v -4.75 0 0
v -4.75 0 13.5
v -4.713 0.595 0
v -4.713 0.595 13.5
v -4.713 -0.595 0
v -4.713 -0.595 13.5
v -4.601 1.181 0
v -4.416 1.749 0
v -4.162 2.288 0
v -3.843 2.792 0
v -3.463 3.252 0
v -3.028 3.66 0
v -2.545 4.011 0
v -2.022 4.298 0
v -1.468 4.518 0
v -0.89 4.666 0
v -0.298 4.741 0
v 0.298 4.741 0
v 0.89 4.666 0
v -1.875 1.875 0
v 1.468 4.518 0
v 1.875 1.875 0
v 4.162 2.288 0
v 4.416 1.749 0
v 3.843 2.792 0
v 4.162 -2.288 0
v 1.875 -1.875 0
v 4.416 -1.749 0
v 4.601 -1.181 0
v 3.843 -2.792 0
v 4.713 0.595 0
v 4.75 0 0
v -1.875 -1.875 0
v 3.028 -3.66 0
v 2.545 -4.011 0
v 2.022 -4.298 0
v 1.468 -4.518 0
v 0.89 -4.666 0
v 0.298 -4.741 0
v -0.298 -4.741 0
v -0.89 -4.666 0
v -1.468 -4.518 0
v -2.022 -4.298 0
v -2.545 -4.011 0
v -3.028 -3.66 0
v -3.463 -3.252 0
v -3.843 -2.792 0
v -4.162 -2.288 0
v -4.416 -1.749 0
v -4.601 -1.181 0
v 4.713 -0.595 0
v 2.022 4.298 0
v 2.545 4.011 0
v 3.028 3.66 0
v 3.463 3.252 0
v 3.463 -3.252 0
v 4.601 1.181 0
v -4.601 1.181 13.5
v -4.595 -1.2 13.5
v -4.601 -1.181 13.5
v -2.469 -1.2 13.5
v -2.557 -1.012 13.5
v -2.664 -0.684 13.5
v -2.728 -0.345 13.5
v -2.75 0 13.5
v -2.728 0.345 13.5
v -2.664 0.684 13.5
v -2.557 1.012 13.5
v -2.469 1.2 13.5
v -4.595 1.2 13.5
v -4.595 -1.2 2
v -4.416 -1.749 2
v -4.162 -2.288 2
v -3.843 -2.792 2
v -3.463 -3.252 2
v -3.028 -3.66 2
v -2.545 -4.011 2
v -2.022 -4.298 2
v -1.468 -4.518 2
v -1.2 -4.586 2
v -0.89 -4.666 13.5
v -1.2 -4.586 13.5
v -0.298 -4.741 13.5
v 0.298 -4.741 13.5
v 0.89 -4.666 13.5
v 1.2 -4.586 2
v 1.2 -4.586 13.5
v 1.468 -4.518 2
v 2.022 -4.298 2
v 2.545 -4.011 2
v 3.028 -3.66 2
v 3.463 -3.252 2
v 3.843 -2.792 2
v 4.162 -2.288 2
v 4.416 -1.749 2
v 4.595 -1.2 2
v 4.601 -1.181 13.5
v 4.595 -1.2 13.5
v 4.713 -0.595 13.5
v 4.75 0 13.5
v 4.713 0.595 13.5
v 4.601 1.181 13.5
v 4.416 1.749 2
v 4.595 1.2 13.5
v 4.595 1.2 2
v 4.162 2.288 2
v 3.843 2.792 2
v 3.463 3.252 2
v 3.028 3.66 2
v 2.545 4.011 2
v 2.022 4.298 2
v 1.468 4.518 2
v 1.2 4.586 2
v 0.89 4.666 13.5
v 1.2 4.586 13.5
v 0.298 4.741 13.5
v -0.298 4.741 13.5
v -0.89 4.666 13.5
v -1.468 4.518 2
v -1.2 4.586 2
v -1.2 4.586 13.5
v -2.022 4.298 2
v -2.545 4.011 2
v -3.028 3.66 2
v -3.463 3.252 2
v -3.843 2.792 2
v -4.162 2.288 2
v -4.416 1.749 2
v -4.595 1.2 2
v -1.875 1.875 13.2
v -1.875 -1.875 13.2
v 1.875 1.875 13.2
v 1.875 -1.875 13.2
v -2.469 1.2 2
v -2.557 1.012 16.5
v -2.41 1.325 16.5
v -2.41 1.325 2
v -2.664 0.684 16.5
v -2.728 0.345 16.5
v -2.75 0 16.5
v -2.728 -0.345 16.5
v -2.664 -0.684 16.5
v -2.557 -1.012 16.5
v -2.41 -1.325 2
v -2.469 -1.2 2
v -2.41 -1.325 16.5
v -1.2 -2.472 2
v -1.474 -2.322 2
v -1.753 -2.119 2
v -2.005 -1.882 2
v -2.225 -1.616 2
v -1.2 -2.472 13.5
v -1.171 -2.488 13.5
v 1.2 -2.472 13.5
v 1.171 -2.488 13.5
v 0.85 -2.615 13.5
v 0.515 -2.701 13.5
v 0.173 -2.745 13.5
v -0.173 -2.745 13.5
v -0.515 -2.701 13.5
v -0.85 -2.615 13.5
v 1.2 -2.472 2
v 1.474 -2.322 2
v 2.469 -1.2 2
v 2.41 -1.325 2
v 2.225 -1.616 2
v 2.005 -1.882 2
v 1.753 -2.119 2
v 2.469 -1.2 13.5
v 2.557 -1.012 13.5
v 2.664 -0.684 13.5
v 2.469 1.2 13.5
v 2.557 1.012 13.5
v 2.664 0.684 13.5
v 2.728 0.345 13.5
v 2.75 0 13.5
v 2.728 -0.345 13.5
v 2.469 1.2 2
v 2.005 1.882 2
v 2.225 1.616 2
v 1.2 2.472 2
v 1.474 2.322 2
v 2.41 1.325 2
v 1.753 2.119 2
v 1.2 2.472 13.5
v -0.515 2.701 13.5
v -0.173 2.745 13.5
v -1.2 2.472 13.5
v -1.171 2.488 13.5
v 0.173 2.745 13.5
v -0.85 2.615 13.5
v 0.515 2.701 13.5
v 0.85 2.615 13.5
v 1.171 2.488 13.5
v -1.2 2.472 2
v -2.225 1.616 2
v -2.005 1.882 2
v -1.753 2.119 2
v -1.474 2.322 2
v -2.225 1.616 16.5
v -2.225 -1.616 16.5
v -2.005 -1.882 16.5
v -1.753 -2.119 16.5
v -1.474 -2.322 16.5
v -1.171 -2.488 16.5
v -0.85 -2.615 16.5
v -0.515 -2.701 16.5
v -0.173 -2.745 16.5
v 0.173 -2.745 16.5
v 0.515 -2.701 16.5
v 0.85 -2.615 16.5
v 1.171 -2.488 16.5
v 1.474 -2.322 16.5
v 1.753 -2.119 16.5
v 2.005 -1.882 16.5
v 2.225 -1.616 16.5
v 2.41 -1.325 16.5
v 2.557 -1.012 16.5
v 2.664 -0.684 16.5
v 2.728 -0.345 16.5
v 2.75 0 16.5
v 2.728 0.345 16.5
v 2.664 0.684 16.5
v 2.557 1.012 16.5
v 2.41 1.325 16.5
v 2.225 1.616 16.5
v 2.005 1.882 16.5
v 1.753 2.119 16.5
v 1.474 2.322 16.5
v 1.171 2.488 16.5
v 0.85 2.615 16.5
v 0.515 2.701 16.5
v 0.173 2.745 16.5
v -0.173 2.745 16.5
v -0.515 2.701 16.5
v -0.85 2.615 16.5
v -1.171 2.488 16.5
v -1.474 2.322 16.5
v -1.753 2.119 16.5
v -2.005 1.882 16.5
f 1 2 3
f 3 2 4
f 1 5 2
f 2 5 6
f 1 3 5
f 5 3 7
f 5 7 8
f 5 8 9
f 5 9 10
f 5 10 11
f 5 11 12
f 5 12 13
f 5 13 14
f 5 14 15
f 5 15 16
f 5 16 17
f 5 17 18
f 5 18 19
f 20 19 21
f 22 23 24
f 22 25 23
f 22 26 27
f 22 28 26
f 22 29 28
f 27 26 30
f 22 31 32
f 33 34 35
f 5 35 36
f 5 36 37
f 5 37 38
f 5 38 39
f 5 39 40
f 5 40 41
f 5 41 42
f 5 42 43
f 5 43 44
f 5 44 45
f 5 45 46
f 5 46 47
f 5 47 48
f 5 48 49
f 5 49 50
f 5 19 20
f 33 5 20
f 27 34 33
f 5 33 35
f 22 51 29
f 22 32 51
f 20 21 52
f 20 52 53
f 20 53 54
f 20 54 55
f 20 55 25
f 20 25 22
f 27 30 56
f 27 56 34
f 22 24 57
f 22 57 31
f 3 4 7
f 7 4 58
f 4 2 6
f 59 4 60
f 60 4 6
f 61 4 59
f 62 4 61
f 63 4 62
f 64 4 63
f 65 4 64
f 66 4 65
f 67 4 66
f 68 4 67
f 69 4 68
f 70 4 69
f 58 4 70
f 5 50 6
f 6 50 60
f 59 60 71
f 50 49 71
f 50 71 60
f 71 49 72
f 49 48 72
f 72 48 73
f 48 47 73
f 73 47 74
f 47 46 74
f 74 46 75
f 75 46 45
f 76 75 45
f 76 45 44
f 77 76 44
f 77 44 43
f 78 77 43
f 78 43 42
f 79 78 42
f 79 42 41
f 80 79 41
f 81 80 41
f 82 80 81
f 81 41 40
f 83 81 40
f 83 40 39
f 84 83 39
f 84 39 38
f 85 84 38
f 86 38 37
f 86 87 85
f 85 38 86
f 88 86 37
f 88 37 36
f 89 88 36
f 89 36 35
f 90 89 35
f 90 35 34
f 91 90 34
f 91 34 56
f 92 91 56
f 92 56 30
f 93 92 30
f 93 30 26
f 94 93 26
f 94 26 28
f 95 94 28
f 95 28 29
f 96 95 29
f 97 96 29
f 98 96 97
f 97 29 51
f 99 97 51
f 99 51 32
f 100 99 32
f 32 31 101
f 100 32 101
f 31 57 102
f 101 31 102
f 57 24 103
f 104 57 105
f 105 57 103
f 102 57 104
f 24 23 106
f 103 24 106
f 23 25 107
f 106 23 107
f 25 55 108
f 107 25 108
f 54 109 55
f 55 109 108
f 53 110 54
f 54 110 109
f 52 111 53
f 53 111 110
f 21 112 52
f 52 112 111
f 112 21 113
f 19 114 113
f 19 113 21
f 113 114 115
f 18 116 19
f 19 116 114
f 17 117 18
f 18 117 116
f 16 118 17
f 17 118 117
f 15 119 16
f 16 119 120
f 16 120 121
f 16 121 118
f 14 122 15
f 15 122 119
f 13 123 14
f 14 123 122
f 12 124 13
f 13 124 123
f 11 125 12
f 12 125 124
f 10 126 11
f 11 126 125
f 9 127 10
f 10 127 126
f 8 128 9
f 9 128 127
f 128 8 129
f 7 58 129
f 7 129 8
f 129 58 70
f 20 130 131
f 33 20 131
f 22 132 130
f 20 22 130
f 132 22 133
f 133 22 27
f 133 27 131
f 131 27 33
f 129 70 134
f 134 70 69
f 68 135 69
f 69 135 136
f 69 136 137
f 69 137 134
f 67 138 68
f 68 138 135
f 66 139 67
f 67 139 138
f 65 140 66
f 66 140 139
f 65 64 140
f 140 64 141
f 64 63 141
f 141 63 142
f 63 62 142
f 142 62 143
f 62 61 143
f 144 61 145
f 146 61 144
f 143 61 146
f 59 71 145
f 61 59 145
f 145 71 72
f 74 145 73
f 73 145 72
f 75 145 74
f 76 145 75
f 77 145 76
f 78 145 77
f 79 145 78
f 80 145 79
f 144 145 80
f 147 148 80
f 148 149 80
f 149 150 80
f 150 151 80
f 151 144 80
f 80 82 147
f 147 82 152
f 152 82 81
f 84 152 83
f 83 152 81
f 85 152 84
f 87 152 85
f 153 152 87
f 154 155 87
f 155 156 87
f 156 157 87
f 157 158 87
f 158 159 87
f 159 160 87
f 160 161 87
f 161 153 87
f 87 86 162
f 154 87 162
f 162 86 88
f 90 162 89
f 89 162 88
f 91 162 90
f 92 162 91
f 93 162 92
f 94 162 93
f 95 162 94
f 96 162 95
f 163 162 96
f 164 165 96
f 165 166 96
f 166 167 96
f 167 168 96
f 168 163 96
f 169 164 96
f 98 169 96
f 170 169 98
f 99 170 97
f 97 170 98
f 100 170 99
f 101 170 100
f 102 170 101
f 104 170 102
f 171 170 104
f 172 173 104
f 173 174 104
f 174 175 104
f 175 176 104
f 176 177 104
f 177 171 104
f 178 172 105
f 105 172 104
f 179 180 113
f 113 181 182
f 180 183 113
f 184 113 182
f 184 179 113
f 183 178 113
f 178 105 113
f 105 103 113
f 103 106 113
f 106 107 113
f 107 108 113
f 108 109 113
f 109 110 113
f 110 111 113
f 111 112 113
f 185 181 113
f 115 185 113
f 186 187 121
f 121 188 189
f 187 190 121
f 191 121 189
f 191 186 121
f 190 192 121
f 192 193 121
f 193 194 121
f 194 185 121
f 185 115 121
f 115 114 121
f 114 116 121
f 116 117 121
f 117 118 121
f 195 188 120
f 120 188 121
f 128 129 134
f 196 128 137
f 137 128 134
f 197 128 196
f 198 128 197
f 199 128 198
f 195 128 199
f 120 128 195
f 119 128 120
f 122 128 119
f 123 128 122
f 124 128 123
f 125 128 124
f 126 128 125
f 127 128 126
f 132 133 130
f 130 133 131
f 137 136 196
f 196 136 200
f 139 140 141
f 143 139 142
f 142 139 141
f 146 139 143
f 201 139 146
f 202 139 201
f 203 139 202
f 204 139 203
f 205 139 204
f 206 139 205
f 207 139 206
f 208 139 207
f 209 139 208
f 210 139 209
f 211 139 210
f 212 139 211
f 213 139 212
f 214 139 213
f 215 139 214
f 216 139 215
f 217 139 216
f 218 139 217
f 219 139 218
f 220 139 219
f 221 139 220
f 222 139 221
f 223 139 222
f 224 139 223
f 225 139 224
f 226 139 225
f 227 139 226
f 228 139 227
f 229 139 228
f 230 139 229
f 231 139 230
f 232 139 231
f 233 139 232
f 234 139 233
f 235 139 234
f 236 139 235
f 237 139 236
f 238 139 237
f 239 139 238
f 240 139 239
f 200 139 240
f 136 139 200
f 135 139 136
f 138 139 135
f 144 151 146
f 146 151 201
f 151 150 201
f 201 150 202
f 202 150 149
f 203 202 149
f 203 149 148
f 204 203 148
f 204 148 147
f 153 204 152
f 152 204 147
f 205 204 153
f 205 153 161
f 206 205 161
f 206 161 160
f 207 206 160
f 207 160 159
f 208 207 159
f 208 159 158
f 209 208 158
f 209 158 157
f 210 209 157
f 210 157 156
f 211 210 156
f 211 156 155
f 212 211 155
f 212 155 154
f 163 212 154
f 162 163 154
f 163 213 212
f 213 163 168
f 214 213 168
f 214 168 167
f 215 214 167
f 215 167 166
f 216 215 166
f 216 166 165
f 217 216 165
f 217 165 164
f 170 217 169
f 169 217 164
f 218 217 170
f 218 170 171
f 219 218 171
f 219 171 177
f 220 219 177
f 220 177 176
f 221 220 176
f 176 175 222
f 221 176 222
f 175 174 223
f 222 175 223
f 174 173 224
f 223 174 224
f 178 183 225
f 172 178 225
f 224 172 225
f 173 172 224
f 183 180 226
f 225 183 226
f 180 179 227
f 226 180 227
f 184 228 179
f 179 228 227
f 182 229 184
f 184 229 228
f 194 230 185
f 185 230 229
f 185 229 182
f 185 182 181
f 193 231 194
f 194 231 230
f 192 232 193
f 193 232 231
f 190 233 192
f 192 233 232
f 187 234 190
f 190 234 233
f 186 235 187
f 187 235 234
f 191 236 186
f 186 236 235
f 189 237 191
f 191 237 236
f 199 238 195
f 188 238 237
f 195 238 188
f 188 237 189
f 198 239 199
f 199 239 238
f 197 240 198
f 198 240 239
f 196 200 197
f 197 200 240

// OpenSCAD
//constantes

cube_side=3.75;
cube_height=12.9;

base_circle=9.5;  				//diametro
base_circle_height=2;

inner_cylinder=5.5;				//diametro
inner_cylinder_height=14.5;

total_height=base_circle_height + inner_cylinder_height;

crest_lenght=(base_circle-inner_cylinder)/2 + 1; //adding 1 mm for overgap
crest_width=2.4;
crest_height=11.5;


difference(){

	difference(){

		union(){
			//base circular
			cylinder(r=base_circle/2,h=base_circle_height,$fn=50);

			//cilindro principal
			translate([0,0,base_circle_height])
				cylinder(r=inner_cylinder/2,h=inner_cylinder_height,$fn=50);

			//Cresta
			translate([(base_circle/2-(crest_lenght*0.5)),0,(crest_height/2 + base_circle_height)])
				cube([crest_lenght,crest_width,crest_height],center=true);

			//Cresta
			rotate([0,0,90])
				translate([(base_circle/2-(crest_lenght*0.5)),0,(crest_height/2 + base_circle_height)])
					cube([crest_lenght,crest_width,crest_height],center=true);

			//Cresta
			rotate([0,0,180])
				translate([(base_circle/2-(crest_lenght*0.5)),0,(crest_height/2 + base_circle_height)])
					cube([crest_lenght,crest_width,crest_height],center=true);

			//Cresta
			rotate([0,0,270])
				translate([(base_circle/2-(crest_lenght*0.5)),0,(crest_height/2 + base_circle_height)])
					cube([crest_lenght,crest_width,crest_height],center=true);
		} //end union

		//cubo interno
		translate([0,0,cube_height/2-0.2])
			cube([cube_side, cube_side, cube_height+1],center=true);
	} //end difference

	//Usamos un 'donut' para redondear el exterior de la pieza.
	difference(){
		cylinder(r=base_circle,h=total_height,$fn=50);
		cylinder(r=base_circle/2,h=total_height,$fn=50);
	}
}
